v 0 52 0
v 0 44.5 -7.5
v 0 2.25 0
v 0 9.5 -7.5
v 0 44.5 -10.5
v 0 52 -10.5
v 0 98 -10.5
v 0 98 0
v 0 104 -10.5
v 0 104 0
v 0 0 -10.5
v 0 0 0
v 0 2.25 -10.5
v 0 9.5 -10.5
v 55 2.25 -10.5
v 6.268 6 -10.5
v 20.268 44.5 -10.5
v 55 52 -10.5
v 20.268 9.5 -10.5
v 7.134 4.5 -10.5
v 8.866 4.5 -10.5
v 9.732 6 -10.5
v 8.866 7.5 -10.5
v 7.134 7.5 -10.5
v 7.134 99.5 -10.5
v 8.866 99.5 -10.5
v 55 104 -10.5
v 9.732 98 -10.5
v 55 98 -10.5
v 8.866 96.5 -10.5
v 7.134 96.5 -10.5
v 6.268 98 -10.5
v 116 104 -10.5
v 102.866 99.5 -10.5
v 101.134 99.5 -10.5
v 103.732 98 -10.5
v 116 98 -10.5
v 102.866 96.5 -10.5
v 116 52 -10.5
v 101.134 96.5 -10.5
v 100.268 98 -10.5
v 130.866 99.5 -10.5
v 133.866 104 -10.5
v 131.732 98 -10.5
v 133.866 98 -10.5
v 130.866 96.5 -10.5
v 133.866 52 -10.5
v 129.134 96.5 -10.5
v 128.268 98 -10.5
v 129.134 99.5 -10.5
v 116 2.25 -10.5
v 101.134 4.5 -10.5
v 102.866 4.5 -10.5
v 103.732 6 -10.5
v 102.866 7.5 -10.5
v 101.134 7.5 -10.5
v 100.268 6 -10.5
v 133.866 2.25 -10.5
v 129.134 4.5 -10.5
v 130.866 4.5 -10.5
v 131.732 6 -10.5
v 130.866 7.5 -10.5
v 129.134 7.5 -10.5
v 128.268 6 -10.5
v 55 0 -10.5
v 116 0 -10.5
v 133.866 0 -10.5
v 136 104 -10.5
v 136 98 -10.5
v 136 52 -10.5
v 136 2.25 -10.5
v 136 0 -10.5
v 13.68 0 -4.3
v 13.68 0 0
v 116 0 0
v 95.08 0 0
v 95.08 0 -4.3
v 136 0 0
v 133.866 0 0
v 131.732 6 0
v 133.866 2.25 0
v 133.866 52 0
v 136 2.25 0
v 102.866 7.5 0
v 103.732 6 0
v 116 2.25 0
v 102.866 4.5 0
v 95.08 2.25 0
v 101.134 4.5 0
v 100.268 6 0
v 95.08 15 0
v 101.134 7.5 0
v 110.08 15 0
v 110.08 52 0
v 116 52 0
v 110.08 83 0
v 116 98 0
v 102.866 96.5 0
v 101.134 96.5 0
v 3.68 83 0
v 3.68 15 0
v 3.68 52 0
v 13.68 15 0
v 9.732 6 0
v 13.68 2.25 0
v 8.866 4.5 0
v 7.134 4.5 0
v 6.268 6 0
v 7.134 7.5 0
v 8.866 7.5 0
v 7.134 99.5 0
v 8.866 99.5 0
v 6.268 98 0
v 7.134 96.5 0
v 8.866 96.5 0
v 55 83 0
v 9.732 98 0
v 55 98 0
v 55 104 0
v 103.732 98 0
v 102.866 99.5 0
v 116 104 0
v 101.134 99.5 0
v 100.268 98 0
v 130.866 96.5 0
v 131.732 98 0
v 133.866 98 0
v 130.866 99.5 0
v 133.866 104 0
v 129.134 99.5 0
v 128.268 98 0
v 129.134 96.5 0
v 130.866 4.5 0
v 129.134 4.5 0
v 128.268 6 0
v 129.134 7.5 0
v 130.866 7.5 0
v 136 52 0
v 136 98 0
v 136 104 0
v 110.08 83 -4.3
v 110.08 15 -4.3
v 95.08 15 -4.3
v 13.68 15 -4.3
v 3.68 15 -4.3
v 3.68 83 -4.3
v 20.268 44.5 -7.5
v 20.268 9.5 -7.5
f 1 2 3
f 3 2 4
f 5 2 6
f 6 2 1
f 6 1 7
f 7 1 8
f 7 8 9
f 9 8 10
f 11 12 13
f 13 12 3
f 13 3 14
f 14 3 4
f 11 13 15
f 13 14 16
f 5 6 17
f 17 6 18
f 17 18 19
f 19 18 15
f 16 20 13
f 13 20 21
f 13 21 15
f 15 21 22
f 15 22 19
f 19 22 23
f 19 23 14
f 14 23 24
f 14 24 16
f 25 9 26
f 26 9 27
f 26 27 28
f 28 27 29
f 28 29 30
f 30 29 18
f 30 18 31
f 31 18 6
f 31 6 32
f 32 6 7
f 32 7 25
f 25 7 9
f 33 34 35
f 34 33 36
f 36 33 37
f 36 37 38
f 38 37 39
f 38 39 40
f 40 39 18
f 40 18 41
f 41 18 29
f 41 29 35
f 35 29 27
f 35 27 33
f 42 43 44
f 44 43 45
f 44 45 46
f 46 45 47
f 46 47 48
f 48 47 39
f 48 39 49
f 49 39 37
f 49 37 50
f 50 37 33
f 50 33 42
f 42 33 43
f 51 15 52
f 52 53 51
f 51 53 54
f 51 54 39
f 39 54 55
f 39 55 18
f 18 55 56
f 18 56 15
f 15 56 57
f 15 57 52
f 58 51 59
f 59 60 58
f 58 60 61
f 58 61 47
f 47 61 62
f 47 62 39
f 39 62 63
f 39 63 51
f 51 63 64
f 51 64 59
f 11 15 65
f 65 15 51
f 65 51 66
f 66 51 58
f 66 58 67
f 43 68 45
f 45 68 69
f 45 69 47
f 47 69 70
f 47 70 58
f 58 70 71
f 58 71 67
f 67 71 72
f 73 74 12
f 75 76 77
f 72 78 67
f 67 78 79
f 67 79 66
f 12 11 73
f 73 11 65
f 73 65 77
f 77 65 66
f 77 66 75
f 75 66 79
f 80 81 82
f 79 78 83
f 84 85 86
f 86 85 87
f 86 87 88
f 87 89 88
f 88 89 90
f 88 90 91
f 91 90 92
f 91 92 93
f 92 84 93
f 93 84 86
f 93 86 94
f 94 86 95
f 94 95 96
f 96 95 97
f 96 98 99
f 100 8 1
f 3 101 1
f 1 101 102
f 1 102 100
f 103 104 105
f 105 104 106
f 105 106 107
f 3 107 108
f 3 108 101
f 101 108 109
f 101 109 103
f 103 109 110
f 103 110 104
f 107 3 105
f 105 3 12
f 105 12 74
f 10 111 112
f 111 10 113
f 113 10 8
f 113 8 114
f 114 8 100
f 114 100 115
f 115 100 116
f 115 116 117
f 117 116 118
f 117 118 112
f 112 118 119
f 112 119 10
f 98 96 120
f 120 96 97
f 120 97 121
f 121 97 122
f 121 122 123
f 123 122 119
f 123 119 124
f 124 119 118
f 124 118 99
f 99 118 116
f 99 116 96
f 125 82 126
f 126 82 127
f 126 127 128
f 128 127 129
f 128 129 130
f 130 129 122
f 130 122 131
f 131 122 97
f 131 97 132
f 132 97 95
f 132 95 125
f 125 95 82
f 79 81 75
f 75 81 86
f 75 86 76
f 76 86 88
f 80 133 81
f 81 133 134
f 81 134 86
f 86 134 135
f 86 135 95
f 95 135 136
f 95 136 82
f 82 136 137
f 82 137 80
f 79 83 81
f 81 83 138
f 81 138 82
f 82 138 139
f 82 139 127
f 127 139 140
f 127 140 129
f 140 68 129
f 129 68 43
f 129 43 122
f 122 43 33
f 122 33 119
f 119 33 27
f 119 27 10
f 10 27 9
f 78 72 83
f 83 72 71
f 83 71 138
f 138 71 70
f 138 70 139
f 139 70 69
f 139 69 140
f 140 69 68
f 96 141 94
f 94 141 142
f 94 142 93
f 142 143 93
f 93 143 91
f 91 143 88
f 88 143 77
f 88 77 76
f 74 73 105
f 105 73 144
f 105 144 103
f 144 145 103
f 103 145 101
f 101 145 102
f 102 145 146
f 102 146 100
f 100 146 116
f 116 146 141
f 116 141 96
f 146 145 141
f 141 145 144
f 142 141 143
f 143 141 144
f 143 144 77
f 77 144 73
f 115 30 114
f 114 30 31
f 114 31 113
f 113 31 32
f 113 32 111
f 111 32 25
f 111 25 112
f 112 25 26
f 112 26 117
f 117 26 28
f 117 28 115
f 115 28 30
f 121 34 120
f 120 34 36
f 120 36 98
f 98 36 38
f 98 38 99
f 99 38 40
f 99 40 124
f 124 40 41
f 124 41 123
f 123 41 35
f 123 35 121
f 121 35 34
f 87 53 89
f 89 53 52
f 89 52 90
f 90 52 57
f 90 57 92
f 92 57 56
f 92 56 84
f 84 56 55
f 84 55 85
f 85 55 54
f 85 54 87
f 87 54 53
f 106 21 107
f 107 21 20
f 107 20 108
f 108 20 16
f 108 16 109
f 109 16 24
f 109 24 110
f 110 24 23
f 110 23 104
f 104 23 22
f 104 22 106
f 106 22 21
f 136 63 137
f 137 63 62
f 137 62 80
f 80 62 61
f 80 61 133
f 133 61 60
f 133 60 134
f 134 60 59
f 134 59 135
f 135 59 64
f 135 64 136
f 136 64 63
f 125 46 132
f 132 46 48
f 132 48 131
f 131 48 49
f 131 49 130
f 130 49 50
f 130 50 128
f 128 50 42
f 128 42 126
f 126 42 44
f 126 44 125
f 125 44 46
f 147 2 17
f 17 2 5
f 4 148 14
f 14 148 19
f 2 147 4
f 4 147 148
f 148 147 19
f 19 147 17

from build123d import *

# Parameters (mm, degrees)
SKETCH_1_W             = 136
SKETCH_1_H             = 104
EXTRUDE_1_DEPTH        = 10.5
CUT_EXTRUDE_1428_DEPTH = 4.3
CUT_EXTRUDE_1767_REACH = 173.529
SKETCH_4_W             = 20.267949192
SKETCH_4_H             = 35
PCB_DEPTH              = 3


with BuildPart() as part:
    # 草图1 → 凸台-拉伸1 (new body)
    with BuildSketch(Plane.XY):
        with Locations((68, 52)):
            Rectangle(SKETCH_1_W, SKETCH_1_H)
    extrude(amount=-EXTRUDE_1_DEPTH)

    # 草图1<3> → Cut-Extrude 1428 (cut)
    with BuildSketch(Plane.XY):
        Polygon((13.68, 15), (13.68, 0), (95.08, 0), (95.08, 15), (110.08, 15), (110.08, 83), (3.68, 83), (3.68, 15), align=None)
    extrude(amount=-CUT_EXTRUDE_1428_DEPTH, mode=Mode.SUBTRACT)

    # 草图1<5> → Cut-Extrude 1767 (cut, up to next)
    with BuildSketch(Plane.XY, mode=Mode.PRIVATE) as cut_extrude_1767_sk1:
        Polygon((8.866025404, 4.5), (9.732050808, 6), (8.866025404, 7.5), (7.133974596, 7.5), (6.267949192, 6), (7.133974596, 4.5), align=None)
    cut_extrude_1767_tool1 = extrude(cut_extrude_1767_sk1.sketch, amount=-CUT_EXTRUDE_1767_REACH, mode=Mode.PRIVATE) & part.part
    # 草图1<5> → Cut-Extrude 1767 (cut, up to next)
    with BuildSketch(Plane.XY, mode=Mode.PRIVATE) as cut_extrude_1767_sk2:
        Polygon((129.133974596, 7.5), (128.267949192, 6), (129.133974596, 4.5), (130.866025404, 4.5), (131.732050808, 6), (130.866025404, 7.5), align=None)
    cut_extrude_1767_tool2 = extrude(cut_extrude_1767_sk2.sketch, amount=-CUT_EXTRUDE_1767_REACH, mode=Mode.PRIVATE) & part.part
    # 草图1<5> → Cut-Extrude 1767 (cut, up to next)
    with BuildSketch(Plane.XY, mode=Mode.PRIVATE) as cut_extrude_1767_sk3:
        Polygon((130.866025404, 96.5), (131.732050808, 98), (130.866025404, 99.5), (129.133974596, 99.5), (128.267949192, 98), (129.133974596, 96.5), align=None)
    cut_extrude_1767_tool3 = extrude(cut_extrude_1767_sk3.sketch, amount=-CUT_EXTRUDE_1767_REACH, mode=Mode.PRIVATE) & part.part
    # 草图1<5> → Cut-Extrude 1767 (cut, up to next)
    with BuildSketch(Plane.XY, mode=Mode.PRIVATE) as cut_extrude_1767_sk4:
        Polygon((8.866025404, 96.5), (9.732050808, 98), (8.866025404, 99.5), (7.133974596, 99.5), (6.267949192, 98), (7.133974596, 96.5), align=None)
    cut_extrude_1767_tool4 = extrude(cut_extrude_1767_sk4.sketch, amount=-CUT_EXTRUDE_1767_REACH, mode=Mode.PRIVATE) & part.part
    # 草图1<5> → Cut-Extrude 1767 (cut, up to next)
    with BuildSketch(Plane.XY, mode=Mode.PRIVATE) as cut_extrude_1767_sk5:
        Polygon((102.866025404, 99.5), (101.133974596, 99.5), (100.267949192, 98), (101.133974596, 96.5), (102.866025404, 96.5), (103.732050808, 98), align=None)
    cut_extrude_1767_tool5 = extrude(cut_extrude_1767_sk5.sketch, amount=-CUT_EXTRUDE_1767_REACH, mode=Mode.PRIVATE) & part.part
    # 草图1<5> → Cut-Extrude 1767 (cut, up to next)
    with BuildSketch(Plane.XY, mode=Mode.PRIVATE) as cut_extrude_1767_sk6:
        Polygon((102.866025404, 4.5), (103.732050808, 6), (102.866025404, 7.5), (101.133974596, 7.5), (100.267949192, 6), (101.133974596, 4.5), align=None)
    cut_extrude_1767_tool6 = extrude(cut_extrude_1767_sk6.sketch, amount=-CUT_EXTRUDE_1767_REACH, mode=Mode.PRIVATE) & part.part
    add(cut_extrude_1767_tool1.solids().sort_by_distance((8, 6, 0))[0], mode=Mode.SUBTRACT)
    add(cut_extrude_1767_tool2.solids().sort_by_distance((130, 6, 0))[0], mode=Mode.SUBTRACT)
    add(cut_extrude_1767_tool3.solids().sort_by_distance((130, 98, 0))[0], mode=Mode.SUBTRACT)
    add(cut_extrude_1767_tool4.solids().sort_by_distance((8, 98, 0))[0], mode=Mode.SUBTRACT)
    add(cut_extrude_1767_tool5.solids().sort_by_distance((102, 98, 0))[0], mode=Mode.SUBTRACT)
    add(cut_extrude_1767_tool6.solids().sort_by_distance((102, 6, 0))[0], mode=Mode.SUBTRACT)

    # 草图4 → PCB插件坑 (cut)
    with BuildSketch(Plane(origin=(0, 0, -10.5), x_dir=(-1, 0, 0), z_dir=(0, 0, -1))):
        with Locations((-10.133974596, 27)):
            Rectangle(SKETCH_4_W, SKETCH_4_H)
    extrude(amount=-PCB_DEPTH, mode=Mode.SUBTRACT)


solid = part.part
